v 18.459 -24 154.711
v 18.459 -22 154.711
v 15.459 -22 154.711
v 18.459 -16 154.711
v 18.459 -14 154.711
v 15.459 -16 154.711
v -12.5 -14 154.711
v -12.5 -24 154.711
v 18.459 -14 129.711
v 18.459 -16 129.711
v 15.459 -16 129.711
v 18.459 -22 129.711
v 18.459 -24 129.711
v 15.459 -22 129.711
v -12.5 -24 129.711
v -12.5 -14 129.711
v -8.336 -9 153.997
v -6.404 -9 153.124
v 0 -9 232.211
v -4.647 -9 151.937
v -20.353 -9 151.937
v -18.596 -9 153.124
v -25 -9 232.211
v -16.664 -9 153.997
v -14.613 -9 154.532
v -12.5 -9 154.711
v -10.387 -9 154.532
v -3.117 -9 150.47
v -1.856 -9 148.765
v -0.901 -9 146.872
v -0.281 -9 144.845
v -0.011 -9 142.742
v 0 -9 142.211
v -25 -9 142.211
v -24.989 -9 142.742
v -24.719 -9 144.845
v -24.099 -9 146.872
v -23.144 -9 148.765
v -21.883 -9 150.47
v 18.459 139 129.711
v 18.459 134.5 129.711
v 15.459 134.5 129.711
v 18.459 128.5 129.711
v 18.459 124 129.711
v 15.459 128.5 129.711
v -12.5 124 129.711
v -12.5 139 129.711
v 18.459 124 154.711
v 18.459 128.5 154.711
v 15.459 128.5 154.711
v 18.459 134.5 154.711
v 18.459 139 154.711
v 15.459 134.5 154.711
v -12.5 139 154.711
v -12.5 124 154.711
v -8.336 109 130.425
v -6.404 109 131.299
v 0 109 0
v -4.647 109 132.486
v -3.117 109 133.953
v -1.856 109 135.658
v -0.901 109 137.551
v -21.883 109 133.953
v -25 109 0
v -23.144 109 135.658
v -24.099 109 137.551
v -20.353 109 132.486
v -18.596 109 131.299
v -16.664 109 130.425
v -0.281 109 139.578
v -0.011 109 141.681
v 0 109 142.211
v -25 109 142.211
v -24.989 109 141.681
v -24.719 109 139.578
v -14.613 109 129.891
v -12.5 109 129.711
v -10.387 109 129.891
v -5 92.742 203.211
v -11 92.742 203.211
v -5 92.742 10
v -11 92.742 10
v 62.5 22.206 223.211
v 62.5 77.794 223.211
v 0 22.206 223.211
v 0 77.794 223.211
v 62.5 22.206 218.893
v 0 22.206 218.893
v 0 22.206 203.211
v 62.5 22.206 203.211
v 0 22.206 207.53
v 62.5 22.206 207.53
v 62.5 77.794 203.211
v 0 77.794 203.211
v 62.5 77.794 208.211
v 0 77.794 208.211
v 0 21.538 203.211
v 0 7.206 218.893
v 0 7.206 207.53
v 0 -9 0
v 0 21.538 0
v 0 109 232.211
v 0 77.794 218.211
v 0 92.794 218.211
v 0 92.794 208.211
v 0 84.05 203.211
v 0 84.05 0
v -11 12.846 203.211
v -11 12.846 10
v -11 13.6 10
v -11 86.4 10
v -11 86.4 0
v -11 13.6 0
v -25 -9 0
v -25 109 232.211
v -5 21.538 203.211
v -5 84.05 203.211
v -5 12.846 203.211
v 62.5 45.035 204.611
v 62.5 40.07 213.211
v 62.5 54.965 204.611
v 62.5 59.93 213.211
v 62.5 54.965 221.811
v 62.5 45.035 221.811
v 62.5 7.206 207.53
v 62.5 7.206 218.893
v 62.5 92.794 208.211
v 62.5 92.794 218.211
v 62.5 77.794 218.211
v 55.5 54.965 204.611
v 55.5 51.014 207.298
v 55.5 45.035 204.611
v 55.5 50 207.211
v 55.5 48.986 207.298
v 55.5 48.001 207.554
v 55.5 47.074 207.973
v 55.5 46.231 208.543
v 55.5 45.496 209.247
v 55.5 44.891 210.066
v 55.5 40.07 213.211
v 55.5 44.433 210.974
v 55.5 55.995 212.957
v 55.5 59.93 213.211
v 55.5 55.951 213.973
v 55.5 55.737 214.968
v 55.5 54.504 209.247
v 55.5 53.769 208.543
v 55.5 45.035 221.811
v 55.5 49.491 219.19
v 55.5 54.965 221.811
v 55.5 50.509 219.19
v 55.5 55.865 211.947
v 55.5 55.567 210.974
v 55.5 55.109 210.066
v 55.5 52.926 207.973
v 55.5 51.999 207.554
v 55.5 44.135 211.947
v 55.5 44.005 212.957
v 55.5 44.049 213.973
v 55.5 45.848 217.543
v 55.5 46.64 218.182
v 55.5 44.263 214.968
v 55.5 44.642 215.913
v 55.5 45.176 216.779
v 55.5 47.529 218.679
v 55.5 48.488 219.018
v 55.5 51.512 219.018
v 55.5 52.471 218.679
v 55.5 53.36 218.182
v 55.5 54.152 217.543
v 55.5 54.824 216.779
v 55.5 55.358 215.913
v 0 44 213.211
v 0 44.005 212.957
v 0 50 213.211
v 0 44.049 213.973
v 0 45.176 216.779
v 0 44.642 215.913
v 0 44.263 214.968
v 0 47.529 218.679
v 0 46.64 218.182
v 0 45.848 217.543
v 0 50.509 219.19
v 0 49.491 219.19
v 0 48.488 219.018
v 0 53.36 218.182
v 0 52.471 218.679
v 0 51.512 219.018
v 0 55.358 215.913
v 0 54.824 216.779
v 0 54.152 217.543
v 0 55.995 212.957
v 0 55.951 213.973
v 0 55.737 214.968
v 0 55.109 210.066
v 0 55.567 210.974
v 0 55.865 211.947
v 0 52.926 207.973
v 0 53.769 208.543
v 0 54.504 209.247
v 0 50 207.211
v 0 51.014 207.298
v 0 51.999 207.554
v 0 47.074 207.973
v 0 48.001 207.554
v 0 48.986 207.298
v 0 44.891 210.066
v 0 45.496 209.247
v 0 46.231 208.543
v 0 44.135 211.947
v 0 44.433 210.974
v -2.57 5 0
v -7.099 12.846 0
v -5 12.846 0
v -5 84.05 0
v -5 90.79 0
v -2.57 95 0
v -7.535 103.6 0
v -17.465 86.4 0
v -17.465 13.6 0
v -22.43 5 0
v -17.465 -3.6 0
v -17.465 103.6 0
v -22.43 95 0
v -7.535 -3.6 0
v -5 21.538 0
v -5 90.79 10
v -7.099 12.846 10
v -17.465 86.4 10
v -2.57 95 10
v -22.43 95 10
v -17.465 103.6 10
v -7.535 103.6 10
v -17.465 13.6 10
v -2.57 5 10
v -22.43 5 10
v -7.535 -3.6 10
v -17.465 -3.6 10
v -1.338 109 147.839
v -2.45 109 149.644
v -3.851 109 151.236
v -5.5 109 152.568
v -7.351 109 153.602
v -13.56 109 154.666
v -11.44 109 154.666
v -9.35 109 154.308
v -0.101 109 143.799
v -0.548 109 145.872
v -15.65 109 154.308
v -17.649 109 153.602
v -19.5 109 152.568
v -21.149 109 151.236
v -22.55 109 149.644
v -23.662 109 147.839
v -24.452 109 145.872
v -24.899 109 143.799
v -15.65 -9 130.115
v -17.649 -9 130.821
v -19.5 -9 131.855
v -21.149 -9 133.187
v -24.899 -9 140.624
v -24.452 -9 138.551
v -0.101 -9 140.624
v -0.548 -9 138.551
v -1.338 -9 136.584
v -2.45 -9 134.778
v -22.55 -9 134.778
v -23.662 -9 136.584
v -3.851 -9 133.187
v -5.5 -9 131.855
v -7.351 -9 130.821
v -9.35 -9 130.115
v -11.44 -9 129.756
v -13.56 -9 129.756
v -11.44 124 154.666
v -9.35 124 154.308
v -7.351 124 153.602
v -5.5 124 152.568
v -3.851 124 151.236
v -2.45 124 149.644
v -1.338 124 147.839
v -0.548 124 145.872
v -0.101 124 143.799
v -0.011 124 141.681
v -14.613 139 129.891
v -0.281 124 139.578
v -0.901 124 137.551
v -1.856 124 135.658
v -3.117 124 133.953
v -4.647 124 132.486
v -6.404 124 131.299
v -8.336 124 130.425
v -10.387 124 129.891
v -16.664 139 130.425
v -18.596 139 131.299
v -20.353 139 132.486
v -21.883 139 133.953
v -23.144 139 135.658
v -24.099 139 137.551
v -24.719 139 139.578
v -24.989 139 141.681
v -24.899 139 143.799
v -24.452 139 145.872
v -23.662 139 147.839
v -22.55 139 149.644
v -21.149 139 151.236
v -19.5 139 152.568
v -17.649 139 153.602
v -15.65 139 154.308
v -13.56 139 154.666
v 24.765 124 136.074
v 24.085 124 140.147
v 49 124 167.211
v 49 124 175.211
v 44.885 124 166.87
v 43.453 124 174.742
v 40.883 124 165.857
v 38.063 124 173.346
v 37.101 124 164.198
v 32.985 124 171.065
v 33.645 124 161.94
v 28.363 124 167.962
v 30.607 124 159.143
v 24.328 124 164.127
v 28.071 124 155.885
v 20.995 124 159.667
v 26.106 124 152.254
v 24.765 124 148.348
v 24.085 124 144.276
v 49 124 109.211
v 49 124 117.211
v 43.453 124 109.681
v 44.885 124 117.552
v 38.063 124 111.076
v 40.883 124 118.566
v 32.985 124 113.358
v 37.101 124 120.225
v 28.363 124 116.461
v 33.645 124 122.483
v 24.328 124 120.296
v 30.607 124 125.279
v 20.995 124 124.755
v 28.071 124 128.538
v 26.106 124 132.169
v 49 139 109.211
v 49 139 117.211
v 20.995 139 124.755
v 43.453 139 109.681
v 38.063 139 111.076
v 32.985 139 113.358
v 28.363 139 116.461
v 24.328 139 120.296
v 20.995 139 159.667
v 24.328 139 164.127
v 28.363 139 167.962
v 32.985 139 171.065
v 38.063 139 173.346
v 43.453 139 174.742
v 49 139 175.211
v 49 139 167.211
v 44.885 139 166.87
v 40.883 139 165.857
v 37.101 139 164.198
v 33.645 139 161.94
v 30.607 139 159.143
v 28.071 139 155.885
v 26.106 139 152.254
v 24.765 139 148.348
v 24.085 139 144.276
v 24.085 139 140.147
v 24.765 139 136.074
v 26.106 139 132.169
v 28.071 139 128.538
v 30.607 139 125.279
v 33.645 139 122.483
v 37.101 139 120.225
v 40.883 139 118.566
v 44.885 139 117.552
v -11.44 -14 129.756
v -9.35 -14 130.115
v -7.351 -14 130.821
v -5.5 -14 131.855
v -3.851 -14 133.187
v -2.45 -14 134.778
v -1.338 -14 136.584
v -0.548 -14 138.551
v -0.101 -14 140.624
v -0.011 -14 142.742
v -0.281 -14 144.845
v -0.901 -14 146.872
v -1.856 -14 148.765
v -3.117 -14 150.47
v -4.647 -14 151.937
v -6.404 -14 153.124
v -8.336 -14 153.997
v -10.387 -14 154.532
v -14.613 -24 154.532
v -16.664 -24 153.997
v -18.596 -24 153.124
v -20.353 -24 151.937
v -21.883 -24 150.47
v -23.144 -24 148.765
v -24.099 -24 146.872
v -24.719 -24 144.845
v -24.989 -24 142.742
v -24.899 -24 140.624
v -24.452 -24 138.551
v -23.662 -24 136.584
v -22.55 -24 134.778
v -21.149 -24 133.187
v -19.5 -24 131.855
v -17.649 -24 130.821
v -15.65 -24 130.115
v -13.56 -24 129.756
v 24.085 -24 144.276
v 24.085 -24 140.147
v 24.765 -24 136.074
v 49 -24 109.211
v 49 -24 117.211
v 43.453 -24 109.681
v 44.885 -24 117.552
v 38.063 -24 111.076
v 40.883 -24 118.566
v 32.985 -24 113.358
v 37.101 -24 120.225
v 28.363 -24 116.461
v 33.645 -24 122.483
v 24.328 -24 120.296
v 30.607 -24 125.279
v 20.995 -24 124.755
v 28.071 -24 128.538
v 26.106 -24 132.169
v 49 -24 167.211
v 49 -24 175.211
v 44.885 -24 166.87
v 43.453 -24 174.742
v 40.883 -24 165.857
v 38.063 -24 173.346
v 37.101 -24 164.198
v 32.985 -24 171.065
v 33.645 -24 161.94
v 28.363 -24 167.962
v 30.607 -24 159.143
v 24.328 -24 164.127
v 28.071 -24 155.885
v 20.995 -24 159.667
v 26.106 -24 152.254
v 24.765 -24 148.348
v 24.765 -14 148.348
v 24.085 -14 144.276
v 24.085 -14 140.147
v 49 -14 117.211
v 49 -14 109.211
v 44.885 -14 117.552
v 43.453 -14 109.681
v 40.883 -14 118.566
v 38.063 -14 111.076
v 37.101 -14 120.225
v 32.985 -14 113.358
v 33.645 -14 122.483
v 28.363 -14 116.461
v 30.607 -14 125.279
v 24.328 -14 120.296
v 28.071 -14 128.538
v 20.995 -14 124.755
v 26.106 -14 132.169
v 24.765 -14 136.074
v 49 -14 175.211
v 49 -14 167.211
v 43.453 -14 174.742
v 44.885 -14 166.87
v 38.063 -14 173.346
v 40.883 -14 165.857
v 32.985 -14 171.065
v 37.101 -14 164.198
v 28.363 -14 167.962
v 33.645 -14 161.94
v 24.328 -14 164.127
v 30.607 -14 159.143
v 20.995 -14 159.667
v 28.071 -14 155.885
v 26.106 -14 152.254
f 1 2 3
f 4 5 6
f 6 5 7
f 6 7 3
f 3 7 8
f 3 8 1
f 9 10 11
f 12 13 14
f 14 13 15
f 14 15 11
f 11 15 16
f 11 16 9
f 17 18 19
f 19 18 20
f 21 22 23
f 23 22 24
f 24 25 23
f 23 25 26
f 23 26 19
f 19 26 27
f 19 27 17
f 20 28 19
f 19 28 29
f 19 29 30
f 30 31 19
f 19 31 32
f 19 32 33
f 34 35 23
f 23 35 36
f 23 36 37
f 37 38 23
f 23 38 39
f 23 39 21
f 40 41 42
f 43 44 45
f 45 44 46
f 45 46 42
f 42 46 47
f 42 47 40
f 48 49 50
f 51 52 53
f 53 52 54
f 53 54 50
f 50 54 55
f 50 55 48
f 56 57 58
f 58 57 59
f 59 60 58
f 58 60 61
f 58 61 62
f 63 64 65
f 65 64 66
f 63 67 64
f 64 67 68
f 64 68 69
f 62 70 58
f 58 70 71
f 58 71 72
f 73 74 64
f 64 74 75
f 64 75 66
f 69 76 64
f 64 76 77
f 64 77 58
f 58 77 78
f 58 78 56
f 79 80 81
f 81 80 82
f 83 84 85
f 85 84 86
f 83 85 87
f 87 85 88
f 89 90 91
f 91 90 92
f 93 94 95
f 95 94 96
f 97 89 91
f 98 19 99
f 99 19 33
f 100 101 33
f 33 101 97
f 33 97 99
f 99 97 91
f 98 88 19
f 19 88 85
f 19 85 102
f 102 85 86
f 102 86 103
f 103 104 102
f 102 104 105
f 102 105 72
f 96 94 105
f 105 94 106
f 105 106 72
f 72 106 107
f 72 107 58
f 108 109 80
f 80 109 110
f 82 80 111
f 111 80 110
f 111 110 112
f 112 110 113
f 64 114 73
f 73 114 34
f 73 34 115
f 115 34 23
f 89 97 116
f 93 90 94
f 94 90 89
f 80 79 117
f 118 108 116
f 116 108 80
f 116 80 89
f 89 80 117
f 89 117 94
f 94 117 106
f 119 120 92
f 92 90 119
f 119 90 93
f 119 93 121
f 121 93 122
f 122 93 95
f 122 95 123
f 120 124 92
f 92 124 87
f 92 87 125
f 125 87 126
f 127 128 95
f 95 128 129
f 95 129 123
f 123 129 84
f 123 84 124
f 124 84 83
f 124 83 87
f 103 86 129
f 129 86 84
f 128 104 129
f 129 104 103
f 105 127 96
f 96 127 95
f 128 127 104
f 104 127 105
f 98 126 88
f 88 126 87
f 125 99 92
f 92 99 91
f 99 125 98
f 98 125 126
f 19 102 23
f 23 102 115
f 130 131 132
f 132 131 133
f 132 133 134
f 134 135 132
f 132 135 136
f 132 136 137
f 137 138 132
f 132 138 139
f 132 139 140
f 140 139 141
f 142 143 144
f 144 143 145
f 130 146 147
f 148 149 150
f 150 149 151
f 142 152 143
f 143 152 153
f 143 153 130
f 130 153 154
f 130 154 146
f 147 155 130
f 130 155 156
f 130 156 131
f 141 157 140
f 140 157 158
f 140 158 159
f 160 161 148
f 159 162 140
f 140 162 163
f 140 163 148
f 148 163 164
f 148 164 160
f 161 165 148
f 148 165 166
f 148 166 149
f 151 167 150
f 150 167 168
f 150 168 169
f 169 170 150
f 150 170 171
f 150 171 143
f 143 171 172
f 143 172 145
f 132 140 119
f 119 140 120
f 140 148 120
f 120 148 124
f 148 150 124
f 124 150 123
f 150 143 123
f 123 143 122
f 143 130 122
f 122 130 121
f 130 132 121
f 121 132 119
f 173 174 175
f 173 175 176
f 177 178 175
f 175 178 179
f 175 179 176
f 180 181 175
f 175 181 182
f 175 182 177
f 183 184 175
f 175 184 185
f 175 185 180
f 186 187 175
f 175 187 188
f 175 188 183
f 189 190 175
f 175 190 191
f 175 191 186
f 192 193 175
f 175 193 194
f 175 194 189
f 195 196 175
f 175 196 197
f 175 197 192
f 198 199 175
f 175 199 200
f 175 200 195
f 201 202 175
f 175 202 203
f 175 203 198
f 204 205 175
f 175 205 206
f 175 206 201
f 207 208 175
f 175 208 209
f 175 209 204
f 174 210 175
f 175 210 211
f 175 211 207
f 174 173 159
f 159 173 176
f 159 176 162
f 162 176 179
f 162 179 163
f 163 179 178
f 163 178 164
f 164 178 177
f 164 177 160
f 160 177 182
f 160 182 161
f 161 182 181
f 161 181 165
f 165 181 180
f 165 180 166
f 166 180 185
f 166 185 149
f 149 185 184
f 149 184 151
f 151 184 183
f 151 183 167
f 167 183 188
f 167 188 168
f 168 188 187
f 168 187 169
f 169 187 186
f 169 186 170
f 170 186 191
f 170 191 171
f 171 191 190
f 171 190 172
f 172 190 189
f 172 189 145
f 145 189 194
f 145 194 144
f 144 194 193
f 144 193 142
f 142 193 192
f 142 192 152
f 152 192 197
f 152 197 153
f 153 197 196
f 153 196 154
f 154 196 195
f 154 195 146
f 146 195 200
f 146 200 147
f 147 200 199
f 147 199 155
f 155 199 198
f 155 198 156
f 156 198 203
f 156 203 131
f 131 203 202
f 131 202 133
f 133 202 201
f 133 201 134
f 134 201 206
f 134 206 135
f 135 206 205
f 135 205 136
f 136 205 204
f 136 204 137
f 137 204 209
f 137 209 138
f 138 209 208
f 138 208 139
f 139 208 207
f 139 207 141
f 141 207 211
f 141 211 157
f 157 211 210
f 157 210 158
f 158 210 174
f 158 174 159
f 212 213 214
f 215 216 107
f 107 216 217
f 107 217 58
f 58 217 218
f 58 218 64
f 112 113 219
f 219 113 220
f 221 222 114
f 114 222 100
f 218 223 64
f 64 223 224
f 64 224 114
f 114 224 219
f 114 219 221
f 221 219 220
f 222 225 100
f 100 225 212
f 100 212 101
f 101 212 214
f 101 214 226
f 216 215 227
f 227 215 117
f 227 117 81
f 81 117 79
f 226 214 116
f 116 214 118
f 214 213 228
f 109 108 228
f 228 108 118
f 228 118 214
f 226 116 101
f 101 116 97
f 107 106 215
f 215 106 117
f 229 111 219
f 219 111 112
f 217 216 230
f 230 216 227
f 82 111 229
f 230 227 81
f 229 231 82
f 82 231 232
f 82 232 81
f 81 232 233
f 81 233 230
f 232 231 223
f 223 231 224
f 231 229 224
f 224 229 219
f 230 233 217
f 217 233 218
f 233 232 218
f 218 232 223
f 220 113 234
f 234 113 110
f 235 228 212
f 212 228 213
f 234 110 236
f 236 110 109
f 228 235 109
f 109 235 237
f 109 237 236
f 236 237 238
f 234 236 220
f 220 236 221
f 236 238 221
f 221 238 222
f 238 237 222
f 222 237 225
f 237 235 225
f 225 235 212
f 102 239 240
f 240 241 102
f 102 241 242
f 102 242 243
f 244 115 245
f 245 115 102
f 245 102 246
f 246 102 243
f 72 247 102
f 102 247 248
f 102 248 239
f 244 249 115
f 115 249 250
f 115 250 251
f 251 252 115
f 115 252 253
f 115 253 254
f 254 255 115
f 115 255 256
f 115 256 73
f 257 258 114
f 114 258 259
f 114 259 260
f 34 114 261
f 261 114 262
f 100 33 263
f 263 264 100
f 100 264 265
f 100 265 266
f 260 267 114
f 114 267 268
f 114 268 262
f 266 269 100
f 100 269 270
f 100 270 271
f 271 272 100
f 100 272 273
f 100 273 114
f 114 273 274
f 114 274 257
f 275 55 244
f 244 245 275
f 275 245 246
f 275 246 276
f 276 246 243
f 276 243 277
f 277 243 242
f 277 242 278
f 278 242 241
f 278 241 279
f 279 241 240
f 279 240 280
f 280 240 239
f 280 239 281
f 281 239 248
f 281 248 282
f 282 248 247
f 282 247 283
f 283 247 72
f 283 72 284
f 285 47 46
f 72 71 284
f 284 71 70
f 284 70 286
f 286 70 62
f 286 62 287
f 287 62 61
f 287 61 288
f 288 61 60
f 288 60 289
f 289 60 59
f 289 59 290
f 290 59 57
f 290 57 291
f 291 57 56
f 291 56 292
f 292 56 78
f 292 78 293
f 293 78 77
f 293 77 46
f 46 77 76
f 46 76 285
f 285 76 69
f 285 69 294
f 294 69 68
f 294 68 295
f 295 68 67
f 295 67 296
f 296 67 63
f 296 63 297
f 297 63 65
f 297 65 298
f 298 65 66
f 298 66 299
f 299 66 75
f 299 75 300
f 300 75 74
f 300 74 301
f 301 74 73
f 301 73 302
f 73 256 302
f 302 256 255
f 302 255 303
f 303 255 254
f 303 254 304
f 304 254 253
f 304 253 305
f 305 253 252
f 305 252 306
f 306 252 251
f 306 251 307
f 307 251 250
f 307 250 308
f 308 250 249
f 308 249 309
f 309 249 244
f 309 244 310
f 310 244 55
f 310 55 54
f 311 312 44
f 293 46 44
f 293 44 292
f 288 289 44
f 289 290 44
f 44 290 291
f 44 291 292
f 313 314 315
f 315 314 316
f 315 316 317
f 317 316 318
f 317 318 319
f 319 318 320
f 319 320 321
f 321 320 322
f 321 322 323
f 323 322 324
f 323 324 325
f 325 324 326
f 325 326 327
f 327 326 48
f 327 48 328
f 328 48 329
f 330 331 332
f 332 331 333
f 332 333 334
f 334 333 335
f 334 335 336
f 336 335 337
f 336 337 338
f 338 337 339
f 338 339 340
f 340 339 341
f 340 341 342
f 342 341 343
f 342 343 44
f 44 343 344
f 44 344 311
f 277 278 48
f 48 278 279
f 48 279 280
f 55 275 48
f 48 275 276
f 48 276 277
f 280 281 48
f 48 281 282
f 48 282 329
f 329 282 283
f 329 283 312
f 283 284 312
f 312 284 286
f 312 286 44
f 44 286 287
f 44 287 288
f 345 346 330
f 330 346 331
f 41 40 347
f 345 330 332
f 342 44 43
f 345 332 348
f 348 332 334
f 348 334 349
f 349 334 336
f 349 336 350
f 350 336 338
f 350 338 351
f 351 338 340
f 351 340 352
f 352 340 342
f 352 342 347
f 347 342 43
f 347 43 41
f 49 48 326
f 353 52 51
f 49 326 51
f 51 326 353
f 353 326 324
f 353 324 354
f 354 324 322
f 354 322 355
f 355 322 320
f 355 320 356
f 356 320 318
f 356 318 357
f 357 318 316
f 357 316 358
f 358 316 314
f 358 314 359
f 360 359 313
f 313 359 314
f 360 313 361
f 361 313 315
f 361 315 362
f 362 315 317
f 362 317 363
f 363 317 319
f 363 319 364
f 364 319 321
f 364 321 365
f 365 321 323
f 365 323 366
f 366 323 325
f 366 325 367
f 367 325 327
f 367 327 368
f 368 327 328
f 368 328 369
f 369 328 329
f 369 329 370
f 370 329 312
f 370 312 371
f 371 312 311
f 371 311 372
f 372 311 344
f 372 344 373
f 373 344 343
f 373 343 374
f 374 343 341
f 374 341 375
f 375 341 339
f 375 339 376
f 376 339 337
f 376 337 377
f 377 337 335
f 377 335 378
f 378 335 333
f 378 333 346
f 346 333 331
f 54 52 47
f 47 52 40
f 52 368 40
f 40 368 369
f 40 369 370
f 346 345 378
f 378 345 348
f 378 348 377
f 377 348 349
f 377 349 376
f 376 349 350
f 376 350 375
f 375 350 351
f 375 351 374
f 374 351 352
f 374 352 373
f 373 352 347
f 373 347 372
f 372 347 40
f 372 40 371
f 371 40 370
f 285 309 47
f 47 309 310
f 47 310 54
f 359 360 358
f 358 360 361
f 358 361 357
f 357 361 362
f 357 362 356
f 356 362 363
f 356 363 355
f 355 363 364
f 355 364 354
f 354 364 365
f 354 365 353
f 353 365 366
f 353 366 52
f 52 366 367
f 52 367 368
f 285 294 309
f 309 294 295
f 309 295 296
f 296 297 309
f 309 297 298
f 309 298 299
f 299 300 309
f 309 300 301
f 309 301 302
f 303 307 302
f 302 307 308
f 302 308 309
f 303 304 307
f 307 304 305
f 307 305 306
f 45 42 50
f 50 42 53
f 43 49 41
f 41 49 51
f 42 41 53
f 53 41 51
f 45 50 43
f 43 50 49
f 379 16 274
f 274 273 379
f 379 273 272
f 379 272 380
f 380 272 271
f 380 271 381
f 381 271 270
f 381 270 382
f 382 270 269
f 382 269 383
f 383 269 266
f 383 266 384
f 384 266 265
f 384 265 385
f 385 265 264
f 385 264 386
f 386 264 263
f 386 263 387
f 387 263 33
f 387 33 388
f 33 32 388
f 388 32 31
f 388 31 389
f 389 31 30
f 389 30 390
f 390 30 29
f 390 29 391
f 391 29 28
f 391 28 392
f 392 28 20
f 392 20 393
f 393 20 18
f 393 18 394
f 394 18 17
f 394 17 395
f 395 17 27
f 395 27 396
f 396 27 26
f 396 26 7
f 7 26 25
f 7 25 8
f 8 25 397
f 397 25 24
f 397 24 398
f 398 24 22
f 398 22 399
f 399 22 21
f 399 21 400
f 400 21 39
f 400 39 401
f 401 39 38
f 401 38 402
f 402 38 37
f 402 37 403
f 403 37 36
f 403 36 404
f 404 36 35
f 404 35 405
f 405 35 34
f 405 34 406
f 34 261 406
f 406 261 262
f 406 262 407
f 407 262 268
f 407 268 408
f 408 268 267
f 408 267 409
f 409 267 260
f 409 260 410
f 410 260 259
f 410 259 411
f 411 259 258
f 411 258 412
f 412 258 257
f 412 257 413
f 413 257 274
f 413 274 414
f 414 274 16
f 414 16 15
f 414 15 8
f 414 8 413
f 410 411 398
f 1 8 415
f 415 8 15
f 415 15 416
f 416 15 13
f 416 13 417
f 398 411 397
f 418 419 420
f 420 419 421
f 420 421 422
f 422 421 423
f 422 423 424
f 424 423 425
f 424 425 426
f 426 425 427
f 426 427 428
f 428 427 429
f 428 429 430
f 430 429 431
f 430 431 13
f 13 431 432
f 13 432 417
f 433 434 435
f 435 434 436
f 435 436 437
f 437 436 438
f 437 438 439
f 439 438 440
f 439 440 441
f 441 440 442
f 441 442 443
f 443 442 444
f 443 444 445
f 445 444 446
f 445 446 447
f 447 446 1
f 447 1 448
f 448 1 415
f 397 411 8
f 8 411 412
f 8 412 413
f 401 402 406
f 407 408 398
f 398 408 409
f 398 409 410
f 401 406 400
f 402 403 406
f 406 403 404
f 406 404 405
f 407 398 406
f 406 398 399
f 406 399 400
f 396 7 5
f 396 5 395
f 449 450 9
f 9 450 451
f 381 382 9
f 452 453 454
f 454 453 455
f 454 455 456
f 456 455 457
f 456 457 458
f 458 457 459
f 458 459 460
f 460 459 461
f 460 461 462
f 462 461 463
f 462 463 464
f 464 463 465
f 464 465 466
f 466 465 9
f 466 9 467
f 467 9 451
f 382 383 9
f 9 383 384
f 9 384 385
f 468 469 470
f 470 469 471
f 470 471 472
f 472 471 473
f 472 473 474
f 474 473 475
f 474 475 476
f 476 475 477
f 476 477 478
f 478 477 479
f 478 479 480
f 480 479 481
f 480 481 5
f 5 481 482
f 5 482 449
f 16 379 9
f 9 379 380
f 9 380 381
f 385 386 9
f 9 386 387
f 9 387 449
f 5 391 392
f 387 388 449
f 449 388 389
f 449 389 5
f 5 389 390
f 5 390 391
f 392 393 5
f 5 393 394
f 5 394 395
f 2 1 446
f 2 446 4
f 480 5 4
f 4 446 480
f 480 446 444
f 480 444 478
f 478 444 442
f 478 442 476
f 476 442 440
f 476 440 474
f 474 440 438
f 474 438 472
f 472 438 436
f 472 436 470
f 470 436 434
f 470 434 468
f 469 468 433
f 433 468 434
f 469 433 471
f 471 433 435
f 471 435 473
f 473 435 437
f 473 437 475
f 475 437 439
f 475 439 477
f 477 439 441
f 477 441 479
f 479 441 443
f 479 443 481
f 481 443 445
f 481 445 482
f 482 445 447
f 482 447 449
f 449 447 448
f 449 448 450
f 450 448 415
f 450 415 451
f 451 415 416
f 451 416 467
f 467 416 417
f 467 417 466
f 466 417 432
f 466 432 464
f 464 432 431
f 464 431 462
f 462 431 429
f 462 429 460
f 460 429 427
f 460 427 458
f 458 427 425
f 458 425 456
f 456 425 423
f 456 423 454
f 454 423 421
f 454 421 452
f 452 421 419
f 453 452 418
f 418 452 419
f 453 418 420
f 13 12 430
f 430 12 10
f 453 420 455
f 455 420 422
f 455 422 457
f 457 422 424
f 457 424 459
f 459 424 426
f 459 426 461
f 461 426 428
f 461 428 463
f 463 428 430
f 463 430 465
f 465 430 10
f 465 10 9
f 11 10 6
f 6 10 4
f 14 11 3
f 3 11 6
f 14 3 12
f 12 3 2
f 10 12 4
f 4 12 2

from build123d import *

# Parameters (mm, degrees)
BOSS_EXTRUDE1_DEPTH      = 320
SKETCH2_W                = 25
SKETCH2_H                = 100
BOSS_EXTRUDE2_DEPTH      = 50
CUT_EXTRUDE1_DEPTH       = 337.19190948
CUT_EXTRUDE1_DEPTH_BACK  = 337.19190948
SKETCH3_R                = 5
SKETCH4_W                = 150
SKETCH4_H                = 19.211352241
BOSS_EXTRUDE3_DEPTH      = 100
BOSS_EXTRUDE4_DEPTH      = 100
SKETCH6_W                = 42.1
SKETCH6_H                = 42.1
CUT_EXTRUDE2_DEPTH       = 10
SKETCH7_R                = 11
CUT_EXTRUDE3_DEPTH       = 2
CUT_EXTRUDE4_DEPTH       = 391.24267
CUT_EXTRUDE4_DEPTH_BACK  = 391.24267
SKETCH8_R                = 11
SKETCH10_R               = 25
SKETCH10_R_2             = 11
BOSS_EXTRUDE5_DEPTH      = 18
CUT_EXTRUDE6_DEPTH       = 381.347658714
CUT_EXTRUDE6_DEPTH_BACK  = 381.347658714
BOSS_EXTRUDE6_REACH      = 243.332
SKETCH12_W               = 150
SKETCH12_H               = 15
SKETCH13_W               = 165
SKETCH13_H               = 5
BOSS_EXTRUDE7_DEPTH      = 100
CUT_EXTRUDE7_DEPTH       = 282.821411126
CUT_EXTRUDE7_DEPTH_BACK  = 282.821411126
SKETCH16_W               = 62.5
SKETCH16_H               = 22.206056974
CUT_EXTRUDE9_DEPTH       = 298.574684732
SKETCH17_W               = 62.5
SKETCH17_H               = 5
BOSS_EXTRUDE8_DEPTH      = 15
SKETCH18_W               = 62.5
SKETCH18_H               = 11.362446971
BOSS_EXTRUDE9_DEPTH      = 15
SKETCH19_W               = 25
SKETCH19_H               = 100
BOSS_EXTRUDE11_DEPTH     = 9
SKETCH20_R               = 5
CUT_EXTRUDE10_DEPTH      = 62.5
SKETCH21_R               = 6
CUT_EXTRUDE11_DEPTH      = 62.5
CUT_EXTRUDE12_DEPTH      = 7
CUT_EXTRUDE13_DEPTH      = 261.438787644
CUT_EXTRUDE13_DEPTH_BACK = 261.438787644
SKETCH23_W               = 50
SKETCH23_H               = 100
SKETCH24_W               = 0.5
SKETCH24_H               = 6.741974104
CUT_EXTRUDE16_DEPTH      = 203.211352241
SKETCH26_W               = 0.5
SKETCH26_H               = 6.741974105
CUT_EXTRUDE17_DEPTH      = 203.211352241
SKETCH27_W               = 5
SKETCH27_H               = 0.5
SKETCH27_W_2             = 6
CUT_EXTRUDE18_DEPTH      = 203.211352241
SKETCH29_W               = 25
SKETCH29_H               = 5
BOSS_EXTRUDE13_DEPTH     = 232.211352241
SKETCH31_W               = 5
SKETCH31_H               = 2.5
BOSS_EXTRUDE14_DEPTH     = 203.211352241
SKETCH32_W               = 5
SKETCH32_H               = 0.55
CUT_EXTRUDE20_DEPTH      = 203.211352241
CUT_EXTRUDE21_DEPTH      = 10
SKETCH33_W               = 25
SKETCH33_H               = 4
BOSS_EXTRUDE15_DEPTH     = 232.211352241
SKETCH35_R               = 12.5
BOSS_EXTRUDE16_DEPTH     = 15
SKETCH36_R               = 12.5
BOSS_EXTRUDE17_DEPTH     = 15
SKETCH37_W               = 3
SKETCH37_H               = 3
CUT_EXTRUDE22_DEPTH      = 201.130669564
BOSS_EXTRUDE19_START     = 15
BOSS_EXTRUDE19_DEPTH     = 15
SKETCH39_R               = 12.5
BOSS_EXTRUDE20_DEPTH     = 10
CUT_EXTRUDE23_DEPTH      = 201.130669564
CUT_EXTRUDE23_DEPTH_BACK = 201.130669564
SKETCH40_W               = 3
SKETCH40_H               = 3


with BuildPart() as part:
    # Sketch1 → Boss-Extrude1 (new body)
    with BuildSketch(Plane.XY):
        Polygon((0, 100), (0, 85.5), (-5.5, 85.5), (-5.5, 92.241974104), (-11, 92.241974104), (-11, 13.345911947), (-5.5, 13.345911947), (-5.5, 20.087886052), (0, 20.087886052), (0, 5.587886052), (0, 0), (-25, 0), (-25, 100), align=None)
    extrude(amount=BOSS_EXTRUDE1_DEPTH)

    # Sketch2 → Boss-Extrude2 (add)
    with BuildSketch(Plane(origin=(0, 0, 0), x_dir=(-1, 0, 0), z_dir=(0, 0, -1))):
        with Locations((12.5, 50)):
            Rectangle(SKETCH2_W, SKETCH2_H)
    extrude(amount=BOSS_EXTRUDE2_DEPTH)

    # Sketch3 → Cut-Extrude1 (cut, two sides: drawn at the far end of the back side and taken through both)
    with BuildSketch(Plane(origin=(0, 0, 0), x_dir=(0, 0, -1), z_dir=(1, 0, 0)).offset(-CUT_EXTRUDE1_DEPTH_BACK)):
        with Locations(Location((25, 52.793943026, 0), (0, 0, 90))):
            Circle(SKETCH3_R)
    extrude(amount=CUT_EXTRUDE1_DEPTH + CUT_EXTRUDE1_DEPTH_BACK, mode=Mode.SUBTRACT)

    # Sketch4 → Boss-Extrude3 (add)
    with BuildSketch(Plane(origin=(0, 100, 0), x_dir=(1, 0, 0), z_dir=(0, 1, 0))):
        with Locations((50, -329.60567612)):
            Rectangle(SKETCH4_W, SKETCH4_H)
    extrude(amount=-BOSS_EXTRUDE3_DEPTH)

    # Sketch5 → Boss-Extrude4 (add)
    with BuildSketch(Plane(origin=(0, 0, 0), x_dir=(1, 0, 0), z_dir=(0, 1, 0))):
        Polygon((125, -209.211352241), (125, -339.211352241), (127.245354701, -339.211352241), (140, -339.211352241), (140, -209.211352241), align=None)
    extrude(amount=BOSS_EXTRUDE4_DEPTH)

    # Sketch6 → Cut-Extrude2 (cut)
    with BuildSketch(Plane.ZY.offset(25)):
        with Locations((-25, 52.793943026)):
            Rectangle(SKETCH6_W, SKETCH6_H)
    extrude(amount=-CUT_EXTRUDE2_DEPTH, mode=Mode.SUBTRACT)

    # Sketch7 → Cut-Extrude3 (cut)
    with BuildSketch(Plane.ZY.offset(15)):
        with Locations(Location((-25, 52.793943026, 0), (0, 0, 270))):
            Circle(SKETCH7_R)
    extrude(amount=-CUT_EXTRUDE3_DEPTH, mode=Mode.SUBTRACT)

    # Sketch8 → Cut-Extrude4 (cut, two sides: drawn at the far end of the back side and taken through both)
    with BuildSketch(Plane.ZY.offset(25).offset(-CUT_EXTRUDE4_DEPTH_BACK)):
        with Locations(Location((-25, 52.793943026, 0), (0, 0, 270))):
            Circle(SKETCH8_R)
    extrude(amount=CUT_EXTRUDE4_DEPTH + CUT_EXTRUDE4_DEPTH_BACK, mode=Mode.SUBTRACT)

    # Sketch10 → Boss-Extrude5 (add)
    with BuildSketch(Plane(origin=(0, 0, 0), x_dir=(0, 0, -1), z_dir=(1, 0, 0))):
        with Locations((25, 52.793943026)):
            Circle(SKETCH10_R)
        with Locations(Location((25, 52.793943026, 0), (0, 0, 270))):
            Circle(SKETCH10_R_2, mode=Mode.SUBTRACT)
    extrude(amount=BOSS_EXTRUDE5_DEPTH)

    # Sketch11 → Cut-Extrude6 (cut, two sides: drawn at the far end of the back side and taken through both)
    with BuildSketch(Plane(origin=(0, 0, 0), x_dir=(1, 0, 0), z_dir=(0, 1, 0)).offset(-CUT_EXTRUDE6_DEPTH_BACK)):
        Polygon((-25, -339.211352241), (-25, -218.211352241), (83.728432641, -218.211352241), (83.728432641, -190.050980202), (162.673418017, -190.050980202), (162.673418017, -339.211352241), align=None)
    extrude(amount=CUT_EXTRUDE6_DEPTH + CUT_EXTRUDE6_DEPTH_BACK, mode=Mode.SUBTRACT)

    # Boss-Extrude6: up to this face of the body (flat: up to its plane)
    boss_extrude6_end = Plane(part.part.faces().sort_by_distance((-12.5, 100, 84.10567612))[0])
    # Sketch12 → Boss-Extrude6 (add, up to the picked face)
    with BuildSketch(Plane(origin=(0, 0, 0), x_dir=(1, 0, 0), z_dir=(0, 1, 0)), mode=Mode.PRIVATE) as boss_extrude6_sk1:
        with Locations((50, -210.711352241)):
            Rectangle(SKETCH12_W, SKETCH12_H)
    boss_extrude6_tool1 = split(extrude(boss_extrude6_sk1.sketch, amount=BOSS_EXTRUDE6_REACH, mode=Mode.PRIVATE), bisect_by=boss_extrude6_end, keep=Keep.BOTH, mode=Mode.PRIVATE)
    # Sketch12 → Boss-Extrude6 (add, up to the picked face)
    with BuildSketch(Plane(origin=(0, 0, 0), x_dir=(1, 0, 0), z_dir=(0, 1, 0)), mode=Mode.PRIVATE) as boss_extrude6_sk2:
        Polygon((140, -118.211352241), (125, -118.211352241), (125, -203.211352241), (125, -218.211352241), (140, -218.211352241), align=None)
    boss_extrude6_tool2 = split(extrude(boss_extrude6_sk2.sketch, amount=BOSS_EXTRUDE6_REACH, mode=Mode.PRIVATE), bisect_by=boss_extrude6_end, keep=Keep.BOTH, mode=Mode.PRIVATE)
    add(boss_extrude6_tool1.solids().sort_by(Axis((50, 0, 210.711352), (0, 1, 0)))[0])
    add(boss_extrude6_tool2.solids().sort_by(Axis((132.5, 0, 168.211352), (0, 1, 0)))[0])

    # Sketch13 → Boss-Extrude7 (add)
    with BuildSketch(Plane(origin=(0, 0, 0), x_dir=(1, 0, 0), z_dir=(0, 1, 0))):
        with Locations((57.5, -220.711352241)):
            Rectangle(SKETCH13_W, SKETCH13_H)
    extrude(amount=BOSS_EXTRUDE7_DEPTH)

    # Sketch14 → Cut-Extrude7 (cut, two sides: drawn at the far end of the back side and taken through both)
    with BuildSketch(Plane(origin=(0, 0, 0), x_dir=(1, 0, 0), z_dir=(0, 1, 0)).offset(-CUT_EXTRUDE7_DEPTH_BACK)):
        Polygon((62.5, -203.211352241), (62.5, -244.24795379), (164.214361429, -244.24795379), (164.214361429, -100.335073146), (62.5, -100.335073146), align=None)
    extrude(amount=CUT_EXTRUDE7_DEPTH + CUT_EXTRUDE7_DEPTH_BACK, mode=Mode.SUBTRACT)

    # Sketch16 → Cut-Extrude9 (cut, through all)
    with BuildSketch(Plane.XY.offset(223.211352241)):
        with Locations((31.25, 88.896971513)):
            Rectangle(SKETCH16_W, SKETCH16_H)
        with Locations((31.25, 11.103028487)):
            Rectangle(SKETCH16_W, SKETCH16_H)
    extrude(amount=-CUT_EXTRUDE9_DEPTH, mode=Mode.SUBTRACT)

    # Sketch17 → Boss-Extrude8 (add)
    with BuildSketch(Plane(origin=(0, 77.793943026, 0), x_dir=(1, 0, 0), z_dir=(0, 1, 0))):
        with Locations((31.25, -210.711352241)):
            Rectangle(SKETCH17_W, SKETCH17_H)
        with Locations((31.25, -215.711352241)):
            Rectangle(SKETCH17_W, SKETCH17_H)
    extrude(amount=BOSS_EXTRUDE8_DEPTH)

    # Sketch18 → Boss-Extrude9 (add)
    with BuildSketch(Plane.XZ.offset(-22.206056974)):
        with Locations((31.25, 213.211352241)):
            Rectangle(SKETCH18_W, SKETCH18_H)
    extrude(amount=BOSS_EXTRUDE9_DEPTH)

    # Sketch19 → Boss-Extrude11 (add)
    with BuildSketch(Plane.XY.offset(223.211352241)):
        with Locations((-12.5, 50)):
            Rectangle(SKETCH19_W, SKETCH19_H)
    extrude(amount=BOSS_EXTRUDE11_DEPTH)

    # Sketch20 → Cut-Extrude10 (cut)
    with BuildSketch(Plane(origin=(62.5, 0, 0), x_dir=(0, 0, -1), z_dir=(1, 0, 0))):
        with Locations((-213.211352241, 50)):
            Circle(SKETCH20_R)
    extrude(amount=-CUT_EXTRUDE10_DEPTH, mode=Mode.SUBTRACT)

    # Sketch21 → Cut-Extrude11 (cut)
    with BuildSketch(Plane(origin=(62.5, 0, 0), x_dir=(0, 0, -1), z_dir=(1, 0, 0))):
        with Locations((-213.211352241, 50)):
            Circle(SKETCH21_R)
    extrude(amount=-CUT_EXTRUDE11_DEPTH, mode=Mode.SUBTRACT)

    # Sketch22 → Cut-Extrude12 (cut)
    with BuildSketch(Plane(origin=(62.5, 0, 0), x_dir=(0, 0, -1), z_dir=(1, 0, 0))):
        Polygon((-204.611352241, 45.034787685), (-204.611352241, 54.965212315), (-213.211352241, 59.93042463), (-221.811352241, 54.965212315), (-221.811352241, 45.034787685), (-213.211352241, 40.06957537), align=None)
    extrude(amount=-CUT_EXTRUDE12_DEPTH, mode=Mode.SUBTRACT)

    # Sketch23 → Cut-Extrude13 (cut, two sides: drawn at the far end of the back side and taken through both)
    with BuildSketch(Plane(origin=(0, 0, 0), x_dir=(0, 0, -1), z_dir=(1, 0, 0)).offset(-CUT_EXTRUDE13_DEPTH_BACK)):
        with Locations((25, 50)):
            Rectangle(SKETCH23_W, SKETCH23_H)
    extrude(amount=CUT_EXTRUDE13_DEPTH + CUT_EXTRUDE13_DEPTH_BACK, mode=Mode.SUBTRACT)

    # Sketch24 → Cut-Extrude16 (cut)
    with BuildSketch(Plane(origin=(0, 0, 0), x_dir=(-1, 0, 0), z_dir=(0, 0, -1))):
        with Locations((5.25, 88.870987052)):
            Rectangle(SKETCH24_W, SKETCH24_H)
    extrude(amount=-CUT_EXTRUDE16_DEPTH, mode=Mode.SUBTRACT)

    # Sketch26 → Cut-Extrude17 (cut)
    with BuildSketch(Plane(origin=(0, 0, 0), x_dir=(-1, 0, 0), z_dir=(0, 0, -1))):
        with Locations((5.25, 16.716899)):
            Rectangle(SKETCH26_W, SKETCH26_H)
    extrude(amount=-CUT_EXTRUDE17_DEPTH, mode=Mode.SUBTRACT)

    # Sketch27 → Cut-Extrude18 (cut)
    with BuildSketch(Plane(origin=(0, 0, 0), x_dir=(-1, 0, 0), z_dir=(0, 0, -1))):
        with Locations((2.5, 85.75)):
            Rectangle(SKETCH27_W, SKETCH27_H)
        with Locations((8, 92.491974104)):
            Rectangle(SKETCH27_W_2, SKETCH27_H)
        with Locations((8, 13.095911947)):
            Rectangle(SKETCH27_W_2, SKETCH27_H)
        with Locations((2.5, 19.837886052)):
            Rectangle(SKETCH27_W, SKETCH27_H)
    extrude(amount=-CUT_EXTRUDE18_DEPTH, mode=Mode.SUBTRACT)

    # Sketch29 → Boss-Extrude13 (add)
    with BuildSketch(Plane(origin=(0, 0, 0), x_dir=(-1, 0, 0), z_dir=(0, 0, -1))):
        with Locations((12.5, 102.5)):
            Rectangle(SKETCH29_W, SKETCH29_H)
        with Locations((12.5, -2.5)):
            Rectangle(SKETCH29_W, SKETCH29_H)
    extrude(amount=-BOSS_EXTRUDE13_DEPTH)

    # Sketch31 → Boss-Extrude14 (add)
    with BuildSketch(Plane(origin=(0, 0, 0), x_dir=(-1, 0, 0), z_dir=(0, 0, -1))):
        with Locations((2.5, 84.75)):
            Rectangle(SKETCH31_W, SKETCH31_H)
        with Locations((2.5, 20.837886052)):
            Rectangle(SKETCH31_W, SKETCH31_H)
    extrude(amount=-BOSS_EXTRUDE14_DEPTH)

    # Sketch32 → Cut-Extrude20 (cut)
    with BuildSketch(Plane(origin=(0, 0, 0), x_dir=(-1, 0, 0), z_dir=(0, 0, -1))):
        with Locations((2.5, 21.812886052)):
            Rectangle(SKETCH32_W, SKETCH32_H)
        with Locations((2.5, 83.775)):
            Rectangle(SKETCH32_W, SKETCH32_H)
    extrude(amount=-CUT_EXTRUDE20_DEPTH, mode=Mode.SUBTRACT)

    # Sketch30 → Cut-Extrude21 (cut)
    with BuildSketch(Plane(origin=(0, 0, 0), x_dir=(-1, 0, 0), z_dir=(0, 0, -1))):
        Polygon((17.465212315, 103.6), (7.534787685, 103.6), (2.56957537, 95), (7.534787685, 86.4), (17.465212315, 86.4), (22.43042463, 95), align=None)
        Polygon((17.465212315, 13.6), (7.534787685, 13.6), (2.56957537, 5), (7.534787685, -3.6), (17.465212315, -3.6), (22.43042463, 5), align=None)
    extrude(amount=-CUT_EXTRUDE21_DEPTH, mode=Mode.SUBTRACT)

    # Sketch33 → Boss-Extrude15 (add)
    with BuildSketch(Plane(origin=(0, 0, 0), x_dir=(-1, 0, 0), z_dir=(0, 0, -1))):
        with Locations((12.5, 107)):
            Rectangle(SKETCH33_W, SKETCH33_H)
        with Locations((12.5, -7)):
            Rectangle(SKETCH33_W, SKETCH33_H)
    extrude(amount=-BOSS_EXTRUDE15_DEPTH)

    # Sketch35 → Boss-Extrude16 (add)
    with BuildSketch(Plane(origin=(0, 109, 0), x_dir=(1, 0, 0), z_dir=(0, 1, 0))):
        with Locations(Location((-12.5, -142.211352241, 0), (0, 0, 180))):
            Circle(SKETCH35_R)
    extrude(amount=BOSS_EXTRUDE16_DEPTH)

    # Sketch36 → Boss-Extrude17 (add)
    with BuildSketch(Plane(origin=(0, 124, 0), x_dir=(1, 0, 0), z_dir=(0, 1, 0))):
        with BuildLine():
            Line((49, -117.211352241), (49, -109.211352241))
            ThreePointArc((49, -109.211352241), (16, -142.211352241), (49, -175.211352241))
            Line((49, -175.211352241), (49, -167.211352241))
            ThreePointArc((49, -167.211352241), (24, -142.211352241), (49, -117.211352241))
        make_face()
        with BuildLine():
            ThreePointArc((18.459043892, -154.711352241), (16, -142.211352241), (18.459043892, -129.711352241))
            Line((18.459043892, -129.711352241), (-12.5, -129.711352241))
            ThreePointArc((-12.5, -129.711352241), (-3.661165235, -133.372517476), (0, -142.211352241))
            ThreePointArc((0, -142.211352241), (-3.661165235, -151.050187006), (-12.5, -154.711352241))
            Line((-12.5, -154.711352241), (18.459043892, -154.711352241))
        make_face()
        with Locations(Location((-12.5, -142.211352241, 0), (0, 0, 90))):
            Circle(SKETCH36_R)
    extrude(amount=BOSS_EXTRUDE17_DEPTH)

    # Sketch37 → Cut-Extrude22 (cut, through all)
    with BuildSketch(Plane(origin=(0, 0, 129.711352241), x_dir=(-1, 0, 0), z_dir=(0, 0, -1))):
        with Locations((-16.959043892, 133)):
            Rectangle(SKETCH37_W, SKETCH37_H)
        with Locations((-16.959043892, 130)):
            Rectangle(SKETCH37_W, SKETCH37_H)
    extrude(amount=-CUT_EXTRUDE22_DEPTH, mode=Mode.SUBTRACT)

    # Sketch38 → Boss-Extrude19 (add)
    with BuildSketch(Plane.XZ.offset(9).offset(BOSS_EXTRUDE19_START)):
        with BuildLine():
            ThreePointArc((0, 142.211352241), (-12.5, 154.711352241), (-25, 142.211352241))
            Line((-25, 142.211352241), (0, 142.211352241))
        make_face()
        with BuildLine():
            Line((0, 142.211352241), (-25, 142.211352241))
            ThreePointArc((-25, 142.211352241), (-12.5, 129.711352241), (0, 142.211352241))
        make_face()
    extrude(amount=-BOSS_EXTRUDE19_DEPTH)

    # Sketch39 → Boss-Extrude20 (add)
    with BuildSketch(Plane.XZ.offset(24)):
        with Locations(Location((-12.5, 142.211352241, 0), (0, 0, 270))):
            Circle(SKETCH39_R)
        with BuildLine():
            ThreePointArc((18.459043892, 129.711352241), (16, 142.211352241), (18.459043892, 154.711352241))
            Line((18.459043892, 154.711352241), (-12.5, 154.711352241))
            ThreePointArc((-12.5, 154.711352241), (-3.661165235, 151.050187006), (0, 142.211352241))
            ThreePointArc((0, 142.211352241), (-3.661165235, 133.372517476), (-12.5, 129.711352241))
            Line((-12.5, 129.711352241), (18.459043892, 129.711352241))
        make_face()
        with BuildLine():
            ThreePointArc((49, 167.211352241), (24, 142.211352241), (49, 117.211352241))
            Line((49, 117.211352241), (49, 109.211352241))
            ThreePointArc((49, 109.211352241), (16, 142.211352241), (49, 175.211352241))
            Line((49, 175.211352241), (49, 167.211352241))
        make_face()
    extrude(amount=-BOSS_EXTRUDE20_DEPTH)

    # Sketch40 → Cut-Extrude23 (cut, two sides: drawn at the far end of the back side and taken through both)
    with BuildSketch(Plane(origin=(0, 0, 129.711352241), x_dir=(-1, 0, 0), z_dir=(0, 0, -1)).offset(-CUT_EXTRUDE23_DEPTH_BACK)):
        with Locations((-16.959043892, -17.5)):
            Rectangle(SKETCH40_W, SKETCH40_H)
        with Locations((-16.959043892, -20.5)):
            Rectangle(SKETCH40_W, SKETCH40_H)
    extrude(amount=CUT_EXTRUDE23_DEPTH + CUT_EXTRUDE23_DEPTH_BACK, mode=Mode.SUBTRACT)


solid = part.part
